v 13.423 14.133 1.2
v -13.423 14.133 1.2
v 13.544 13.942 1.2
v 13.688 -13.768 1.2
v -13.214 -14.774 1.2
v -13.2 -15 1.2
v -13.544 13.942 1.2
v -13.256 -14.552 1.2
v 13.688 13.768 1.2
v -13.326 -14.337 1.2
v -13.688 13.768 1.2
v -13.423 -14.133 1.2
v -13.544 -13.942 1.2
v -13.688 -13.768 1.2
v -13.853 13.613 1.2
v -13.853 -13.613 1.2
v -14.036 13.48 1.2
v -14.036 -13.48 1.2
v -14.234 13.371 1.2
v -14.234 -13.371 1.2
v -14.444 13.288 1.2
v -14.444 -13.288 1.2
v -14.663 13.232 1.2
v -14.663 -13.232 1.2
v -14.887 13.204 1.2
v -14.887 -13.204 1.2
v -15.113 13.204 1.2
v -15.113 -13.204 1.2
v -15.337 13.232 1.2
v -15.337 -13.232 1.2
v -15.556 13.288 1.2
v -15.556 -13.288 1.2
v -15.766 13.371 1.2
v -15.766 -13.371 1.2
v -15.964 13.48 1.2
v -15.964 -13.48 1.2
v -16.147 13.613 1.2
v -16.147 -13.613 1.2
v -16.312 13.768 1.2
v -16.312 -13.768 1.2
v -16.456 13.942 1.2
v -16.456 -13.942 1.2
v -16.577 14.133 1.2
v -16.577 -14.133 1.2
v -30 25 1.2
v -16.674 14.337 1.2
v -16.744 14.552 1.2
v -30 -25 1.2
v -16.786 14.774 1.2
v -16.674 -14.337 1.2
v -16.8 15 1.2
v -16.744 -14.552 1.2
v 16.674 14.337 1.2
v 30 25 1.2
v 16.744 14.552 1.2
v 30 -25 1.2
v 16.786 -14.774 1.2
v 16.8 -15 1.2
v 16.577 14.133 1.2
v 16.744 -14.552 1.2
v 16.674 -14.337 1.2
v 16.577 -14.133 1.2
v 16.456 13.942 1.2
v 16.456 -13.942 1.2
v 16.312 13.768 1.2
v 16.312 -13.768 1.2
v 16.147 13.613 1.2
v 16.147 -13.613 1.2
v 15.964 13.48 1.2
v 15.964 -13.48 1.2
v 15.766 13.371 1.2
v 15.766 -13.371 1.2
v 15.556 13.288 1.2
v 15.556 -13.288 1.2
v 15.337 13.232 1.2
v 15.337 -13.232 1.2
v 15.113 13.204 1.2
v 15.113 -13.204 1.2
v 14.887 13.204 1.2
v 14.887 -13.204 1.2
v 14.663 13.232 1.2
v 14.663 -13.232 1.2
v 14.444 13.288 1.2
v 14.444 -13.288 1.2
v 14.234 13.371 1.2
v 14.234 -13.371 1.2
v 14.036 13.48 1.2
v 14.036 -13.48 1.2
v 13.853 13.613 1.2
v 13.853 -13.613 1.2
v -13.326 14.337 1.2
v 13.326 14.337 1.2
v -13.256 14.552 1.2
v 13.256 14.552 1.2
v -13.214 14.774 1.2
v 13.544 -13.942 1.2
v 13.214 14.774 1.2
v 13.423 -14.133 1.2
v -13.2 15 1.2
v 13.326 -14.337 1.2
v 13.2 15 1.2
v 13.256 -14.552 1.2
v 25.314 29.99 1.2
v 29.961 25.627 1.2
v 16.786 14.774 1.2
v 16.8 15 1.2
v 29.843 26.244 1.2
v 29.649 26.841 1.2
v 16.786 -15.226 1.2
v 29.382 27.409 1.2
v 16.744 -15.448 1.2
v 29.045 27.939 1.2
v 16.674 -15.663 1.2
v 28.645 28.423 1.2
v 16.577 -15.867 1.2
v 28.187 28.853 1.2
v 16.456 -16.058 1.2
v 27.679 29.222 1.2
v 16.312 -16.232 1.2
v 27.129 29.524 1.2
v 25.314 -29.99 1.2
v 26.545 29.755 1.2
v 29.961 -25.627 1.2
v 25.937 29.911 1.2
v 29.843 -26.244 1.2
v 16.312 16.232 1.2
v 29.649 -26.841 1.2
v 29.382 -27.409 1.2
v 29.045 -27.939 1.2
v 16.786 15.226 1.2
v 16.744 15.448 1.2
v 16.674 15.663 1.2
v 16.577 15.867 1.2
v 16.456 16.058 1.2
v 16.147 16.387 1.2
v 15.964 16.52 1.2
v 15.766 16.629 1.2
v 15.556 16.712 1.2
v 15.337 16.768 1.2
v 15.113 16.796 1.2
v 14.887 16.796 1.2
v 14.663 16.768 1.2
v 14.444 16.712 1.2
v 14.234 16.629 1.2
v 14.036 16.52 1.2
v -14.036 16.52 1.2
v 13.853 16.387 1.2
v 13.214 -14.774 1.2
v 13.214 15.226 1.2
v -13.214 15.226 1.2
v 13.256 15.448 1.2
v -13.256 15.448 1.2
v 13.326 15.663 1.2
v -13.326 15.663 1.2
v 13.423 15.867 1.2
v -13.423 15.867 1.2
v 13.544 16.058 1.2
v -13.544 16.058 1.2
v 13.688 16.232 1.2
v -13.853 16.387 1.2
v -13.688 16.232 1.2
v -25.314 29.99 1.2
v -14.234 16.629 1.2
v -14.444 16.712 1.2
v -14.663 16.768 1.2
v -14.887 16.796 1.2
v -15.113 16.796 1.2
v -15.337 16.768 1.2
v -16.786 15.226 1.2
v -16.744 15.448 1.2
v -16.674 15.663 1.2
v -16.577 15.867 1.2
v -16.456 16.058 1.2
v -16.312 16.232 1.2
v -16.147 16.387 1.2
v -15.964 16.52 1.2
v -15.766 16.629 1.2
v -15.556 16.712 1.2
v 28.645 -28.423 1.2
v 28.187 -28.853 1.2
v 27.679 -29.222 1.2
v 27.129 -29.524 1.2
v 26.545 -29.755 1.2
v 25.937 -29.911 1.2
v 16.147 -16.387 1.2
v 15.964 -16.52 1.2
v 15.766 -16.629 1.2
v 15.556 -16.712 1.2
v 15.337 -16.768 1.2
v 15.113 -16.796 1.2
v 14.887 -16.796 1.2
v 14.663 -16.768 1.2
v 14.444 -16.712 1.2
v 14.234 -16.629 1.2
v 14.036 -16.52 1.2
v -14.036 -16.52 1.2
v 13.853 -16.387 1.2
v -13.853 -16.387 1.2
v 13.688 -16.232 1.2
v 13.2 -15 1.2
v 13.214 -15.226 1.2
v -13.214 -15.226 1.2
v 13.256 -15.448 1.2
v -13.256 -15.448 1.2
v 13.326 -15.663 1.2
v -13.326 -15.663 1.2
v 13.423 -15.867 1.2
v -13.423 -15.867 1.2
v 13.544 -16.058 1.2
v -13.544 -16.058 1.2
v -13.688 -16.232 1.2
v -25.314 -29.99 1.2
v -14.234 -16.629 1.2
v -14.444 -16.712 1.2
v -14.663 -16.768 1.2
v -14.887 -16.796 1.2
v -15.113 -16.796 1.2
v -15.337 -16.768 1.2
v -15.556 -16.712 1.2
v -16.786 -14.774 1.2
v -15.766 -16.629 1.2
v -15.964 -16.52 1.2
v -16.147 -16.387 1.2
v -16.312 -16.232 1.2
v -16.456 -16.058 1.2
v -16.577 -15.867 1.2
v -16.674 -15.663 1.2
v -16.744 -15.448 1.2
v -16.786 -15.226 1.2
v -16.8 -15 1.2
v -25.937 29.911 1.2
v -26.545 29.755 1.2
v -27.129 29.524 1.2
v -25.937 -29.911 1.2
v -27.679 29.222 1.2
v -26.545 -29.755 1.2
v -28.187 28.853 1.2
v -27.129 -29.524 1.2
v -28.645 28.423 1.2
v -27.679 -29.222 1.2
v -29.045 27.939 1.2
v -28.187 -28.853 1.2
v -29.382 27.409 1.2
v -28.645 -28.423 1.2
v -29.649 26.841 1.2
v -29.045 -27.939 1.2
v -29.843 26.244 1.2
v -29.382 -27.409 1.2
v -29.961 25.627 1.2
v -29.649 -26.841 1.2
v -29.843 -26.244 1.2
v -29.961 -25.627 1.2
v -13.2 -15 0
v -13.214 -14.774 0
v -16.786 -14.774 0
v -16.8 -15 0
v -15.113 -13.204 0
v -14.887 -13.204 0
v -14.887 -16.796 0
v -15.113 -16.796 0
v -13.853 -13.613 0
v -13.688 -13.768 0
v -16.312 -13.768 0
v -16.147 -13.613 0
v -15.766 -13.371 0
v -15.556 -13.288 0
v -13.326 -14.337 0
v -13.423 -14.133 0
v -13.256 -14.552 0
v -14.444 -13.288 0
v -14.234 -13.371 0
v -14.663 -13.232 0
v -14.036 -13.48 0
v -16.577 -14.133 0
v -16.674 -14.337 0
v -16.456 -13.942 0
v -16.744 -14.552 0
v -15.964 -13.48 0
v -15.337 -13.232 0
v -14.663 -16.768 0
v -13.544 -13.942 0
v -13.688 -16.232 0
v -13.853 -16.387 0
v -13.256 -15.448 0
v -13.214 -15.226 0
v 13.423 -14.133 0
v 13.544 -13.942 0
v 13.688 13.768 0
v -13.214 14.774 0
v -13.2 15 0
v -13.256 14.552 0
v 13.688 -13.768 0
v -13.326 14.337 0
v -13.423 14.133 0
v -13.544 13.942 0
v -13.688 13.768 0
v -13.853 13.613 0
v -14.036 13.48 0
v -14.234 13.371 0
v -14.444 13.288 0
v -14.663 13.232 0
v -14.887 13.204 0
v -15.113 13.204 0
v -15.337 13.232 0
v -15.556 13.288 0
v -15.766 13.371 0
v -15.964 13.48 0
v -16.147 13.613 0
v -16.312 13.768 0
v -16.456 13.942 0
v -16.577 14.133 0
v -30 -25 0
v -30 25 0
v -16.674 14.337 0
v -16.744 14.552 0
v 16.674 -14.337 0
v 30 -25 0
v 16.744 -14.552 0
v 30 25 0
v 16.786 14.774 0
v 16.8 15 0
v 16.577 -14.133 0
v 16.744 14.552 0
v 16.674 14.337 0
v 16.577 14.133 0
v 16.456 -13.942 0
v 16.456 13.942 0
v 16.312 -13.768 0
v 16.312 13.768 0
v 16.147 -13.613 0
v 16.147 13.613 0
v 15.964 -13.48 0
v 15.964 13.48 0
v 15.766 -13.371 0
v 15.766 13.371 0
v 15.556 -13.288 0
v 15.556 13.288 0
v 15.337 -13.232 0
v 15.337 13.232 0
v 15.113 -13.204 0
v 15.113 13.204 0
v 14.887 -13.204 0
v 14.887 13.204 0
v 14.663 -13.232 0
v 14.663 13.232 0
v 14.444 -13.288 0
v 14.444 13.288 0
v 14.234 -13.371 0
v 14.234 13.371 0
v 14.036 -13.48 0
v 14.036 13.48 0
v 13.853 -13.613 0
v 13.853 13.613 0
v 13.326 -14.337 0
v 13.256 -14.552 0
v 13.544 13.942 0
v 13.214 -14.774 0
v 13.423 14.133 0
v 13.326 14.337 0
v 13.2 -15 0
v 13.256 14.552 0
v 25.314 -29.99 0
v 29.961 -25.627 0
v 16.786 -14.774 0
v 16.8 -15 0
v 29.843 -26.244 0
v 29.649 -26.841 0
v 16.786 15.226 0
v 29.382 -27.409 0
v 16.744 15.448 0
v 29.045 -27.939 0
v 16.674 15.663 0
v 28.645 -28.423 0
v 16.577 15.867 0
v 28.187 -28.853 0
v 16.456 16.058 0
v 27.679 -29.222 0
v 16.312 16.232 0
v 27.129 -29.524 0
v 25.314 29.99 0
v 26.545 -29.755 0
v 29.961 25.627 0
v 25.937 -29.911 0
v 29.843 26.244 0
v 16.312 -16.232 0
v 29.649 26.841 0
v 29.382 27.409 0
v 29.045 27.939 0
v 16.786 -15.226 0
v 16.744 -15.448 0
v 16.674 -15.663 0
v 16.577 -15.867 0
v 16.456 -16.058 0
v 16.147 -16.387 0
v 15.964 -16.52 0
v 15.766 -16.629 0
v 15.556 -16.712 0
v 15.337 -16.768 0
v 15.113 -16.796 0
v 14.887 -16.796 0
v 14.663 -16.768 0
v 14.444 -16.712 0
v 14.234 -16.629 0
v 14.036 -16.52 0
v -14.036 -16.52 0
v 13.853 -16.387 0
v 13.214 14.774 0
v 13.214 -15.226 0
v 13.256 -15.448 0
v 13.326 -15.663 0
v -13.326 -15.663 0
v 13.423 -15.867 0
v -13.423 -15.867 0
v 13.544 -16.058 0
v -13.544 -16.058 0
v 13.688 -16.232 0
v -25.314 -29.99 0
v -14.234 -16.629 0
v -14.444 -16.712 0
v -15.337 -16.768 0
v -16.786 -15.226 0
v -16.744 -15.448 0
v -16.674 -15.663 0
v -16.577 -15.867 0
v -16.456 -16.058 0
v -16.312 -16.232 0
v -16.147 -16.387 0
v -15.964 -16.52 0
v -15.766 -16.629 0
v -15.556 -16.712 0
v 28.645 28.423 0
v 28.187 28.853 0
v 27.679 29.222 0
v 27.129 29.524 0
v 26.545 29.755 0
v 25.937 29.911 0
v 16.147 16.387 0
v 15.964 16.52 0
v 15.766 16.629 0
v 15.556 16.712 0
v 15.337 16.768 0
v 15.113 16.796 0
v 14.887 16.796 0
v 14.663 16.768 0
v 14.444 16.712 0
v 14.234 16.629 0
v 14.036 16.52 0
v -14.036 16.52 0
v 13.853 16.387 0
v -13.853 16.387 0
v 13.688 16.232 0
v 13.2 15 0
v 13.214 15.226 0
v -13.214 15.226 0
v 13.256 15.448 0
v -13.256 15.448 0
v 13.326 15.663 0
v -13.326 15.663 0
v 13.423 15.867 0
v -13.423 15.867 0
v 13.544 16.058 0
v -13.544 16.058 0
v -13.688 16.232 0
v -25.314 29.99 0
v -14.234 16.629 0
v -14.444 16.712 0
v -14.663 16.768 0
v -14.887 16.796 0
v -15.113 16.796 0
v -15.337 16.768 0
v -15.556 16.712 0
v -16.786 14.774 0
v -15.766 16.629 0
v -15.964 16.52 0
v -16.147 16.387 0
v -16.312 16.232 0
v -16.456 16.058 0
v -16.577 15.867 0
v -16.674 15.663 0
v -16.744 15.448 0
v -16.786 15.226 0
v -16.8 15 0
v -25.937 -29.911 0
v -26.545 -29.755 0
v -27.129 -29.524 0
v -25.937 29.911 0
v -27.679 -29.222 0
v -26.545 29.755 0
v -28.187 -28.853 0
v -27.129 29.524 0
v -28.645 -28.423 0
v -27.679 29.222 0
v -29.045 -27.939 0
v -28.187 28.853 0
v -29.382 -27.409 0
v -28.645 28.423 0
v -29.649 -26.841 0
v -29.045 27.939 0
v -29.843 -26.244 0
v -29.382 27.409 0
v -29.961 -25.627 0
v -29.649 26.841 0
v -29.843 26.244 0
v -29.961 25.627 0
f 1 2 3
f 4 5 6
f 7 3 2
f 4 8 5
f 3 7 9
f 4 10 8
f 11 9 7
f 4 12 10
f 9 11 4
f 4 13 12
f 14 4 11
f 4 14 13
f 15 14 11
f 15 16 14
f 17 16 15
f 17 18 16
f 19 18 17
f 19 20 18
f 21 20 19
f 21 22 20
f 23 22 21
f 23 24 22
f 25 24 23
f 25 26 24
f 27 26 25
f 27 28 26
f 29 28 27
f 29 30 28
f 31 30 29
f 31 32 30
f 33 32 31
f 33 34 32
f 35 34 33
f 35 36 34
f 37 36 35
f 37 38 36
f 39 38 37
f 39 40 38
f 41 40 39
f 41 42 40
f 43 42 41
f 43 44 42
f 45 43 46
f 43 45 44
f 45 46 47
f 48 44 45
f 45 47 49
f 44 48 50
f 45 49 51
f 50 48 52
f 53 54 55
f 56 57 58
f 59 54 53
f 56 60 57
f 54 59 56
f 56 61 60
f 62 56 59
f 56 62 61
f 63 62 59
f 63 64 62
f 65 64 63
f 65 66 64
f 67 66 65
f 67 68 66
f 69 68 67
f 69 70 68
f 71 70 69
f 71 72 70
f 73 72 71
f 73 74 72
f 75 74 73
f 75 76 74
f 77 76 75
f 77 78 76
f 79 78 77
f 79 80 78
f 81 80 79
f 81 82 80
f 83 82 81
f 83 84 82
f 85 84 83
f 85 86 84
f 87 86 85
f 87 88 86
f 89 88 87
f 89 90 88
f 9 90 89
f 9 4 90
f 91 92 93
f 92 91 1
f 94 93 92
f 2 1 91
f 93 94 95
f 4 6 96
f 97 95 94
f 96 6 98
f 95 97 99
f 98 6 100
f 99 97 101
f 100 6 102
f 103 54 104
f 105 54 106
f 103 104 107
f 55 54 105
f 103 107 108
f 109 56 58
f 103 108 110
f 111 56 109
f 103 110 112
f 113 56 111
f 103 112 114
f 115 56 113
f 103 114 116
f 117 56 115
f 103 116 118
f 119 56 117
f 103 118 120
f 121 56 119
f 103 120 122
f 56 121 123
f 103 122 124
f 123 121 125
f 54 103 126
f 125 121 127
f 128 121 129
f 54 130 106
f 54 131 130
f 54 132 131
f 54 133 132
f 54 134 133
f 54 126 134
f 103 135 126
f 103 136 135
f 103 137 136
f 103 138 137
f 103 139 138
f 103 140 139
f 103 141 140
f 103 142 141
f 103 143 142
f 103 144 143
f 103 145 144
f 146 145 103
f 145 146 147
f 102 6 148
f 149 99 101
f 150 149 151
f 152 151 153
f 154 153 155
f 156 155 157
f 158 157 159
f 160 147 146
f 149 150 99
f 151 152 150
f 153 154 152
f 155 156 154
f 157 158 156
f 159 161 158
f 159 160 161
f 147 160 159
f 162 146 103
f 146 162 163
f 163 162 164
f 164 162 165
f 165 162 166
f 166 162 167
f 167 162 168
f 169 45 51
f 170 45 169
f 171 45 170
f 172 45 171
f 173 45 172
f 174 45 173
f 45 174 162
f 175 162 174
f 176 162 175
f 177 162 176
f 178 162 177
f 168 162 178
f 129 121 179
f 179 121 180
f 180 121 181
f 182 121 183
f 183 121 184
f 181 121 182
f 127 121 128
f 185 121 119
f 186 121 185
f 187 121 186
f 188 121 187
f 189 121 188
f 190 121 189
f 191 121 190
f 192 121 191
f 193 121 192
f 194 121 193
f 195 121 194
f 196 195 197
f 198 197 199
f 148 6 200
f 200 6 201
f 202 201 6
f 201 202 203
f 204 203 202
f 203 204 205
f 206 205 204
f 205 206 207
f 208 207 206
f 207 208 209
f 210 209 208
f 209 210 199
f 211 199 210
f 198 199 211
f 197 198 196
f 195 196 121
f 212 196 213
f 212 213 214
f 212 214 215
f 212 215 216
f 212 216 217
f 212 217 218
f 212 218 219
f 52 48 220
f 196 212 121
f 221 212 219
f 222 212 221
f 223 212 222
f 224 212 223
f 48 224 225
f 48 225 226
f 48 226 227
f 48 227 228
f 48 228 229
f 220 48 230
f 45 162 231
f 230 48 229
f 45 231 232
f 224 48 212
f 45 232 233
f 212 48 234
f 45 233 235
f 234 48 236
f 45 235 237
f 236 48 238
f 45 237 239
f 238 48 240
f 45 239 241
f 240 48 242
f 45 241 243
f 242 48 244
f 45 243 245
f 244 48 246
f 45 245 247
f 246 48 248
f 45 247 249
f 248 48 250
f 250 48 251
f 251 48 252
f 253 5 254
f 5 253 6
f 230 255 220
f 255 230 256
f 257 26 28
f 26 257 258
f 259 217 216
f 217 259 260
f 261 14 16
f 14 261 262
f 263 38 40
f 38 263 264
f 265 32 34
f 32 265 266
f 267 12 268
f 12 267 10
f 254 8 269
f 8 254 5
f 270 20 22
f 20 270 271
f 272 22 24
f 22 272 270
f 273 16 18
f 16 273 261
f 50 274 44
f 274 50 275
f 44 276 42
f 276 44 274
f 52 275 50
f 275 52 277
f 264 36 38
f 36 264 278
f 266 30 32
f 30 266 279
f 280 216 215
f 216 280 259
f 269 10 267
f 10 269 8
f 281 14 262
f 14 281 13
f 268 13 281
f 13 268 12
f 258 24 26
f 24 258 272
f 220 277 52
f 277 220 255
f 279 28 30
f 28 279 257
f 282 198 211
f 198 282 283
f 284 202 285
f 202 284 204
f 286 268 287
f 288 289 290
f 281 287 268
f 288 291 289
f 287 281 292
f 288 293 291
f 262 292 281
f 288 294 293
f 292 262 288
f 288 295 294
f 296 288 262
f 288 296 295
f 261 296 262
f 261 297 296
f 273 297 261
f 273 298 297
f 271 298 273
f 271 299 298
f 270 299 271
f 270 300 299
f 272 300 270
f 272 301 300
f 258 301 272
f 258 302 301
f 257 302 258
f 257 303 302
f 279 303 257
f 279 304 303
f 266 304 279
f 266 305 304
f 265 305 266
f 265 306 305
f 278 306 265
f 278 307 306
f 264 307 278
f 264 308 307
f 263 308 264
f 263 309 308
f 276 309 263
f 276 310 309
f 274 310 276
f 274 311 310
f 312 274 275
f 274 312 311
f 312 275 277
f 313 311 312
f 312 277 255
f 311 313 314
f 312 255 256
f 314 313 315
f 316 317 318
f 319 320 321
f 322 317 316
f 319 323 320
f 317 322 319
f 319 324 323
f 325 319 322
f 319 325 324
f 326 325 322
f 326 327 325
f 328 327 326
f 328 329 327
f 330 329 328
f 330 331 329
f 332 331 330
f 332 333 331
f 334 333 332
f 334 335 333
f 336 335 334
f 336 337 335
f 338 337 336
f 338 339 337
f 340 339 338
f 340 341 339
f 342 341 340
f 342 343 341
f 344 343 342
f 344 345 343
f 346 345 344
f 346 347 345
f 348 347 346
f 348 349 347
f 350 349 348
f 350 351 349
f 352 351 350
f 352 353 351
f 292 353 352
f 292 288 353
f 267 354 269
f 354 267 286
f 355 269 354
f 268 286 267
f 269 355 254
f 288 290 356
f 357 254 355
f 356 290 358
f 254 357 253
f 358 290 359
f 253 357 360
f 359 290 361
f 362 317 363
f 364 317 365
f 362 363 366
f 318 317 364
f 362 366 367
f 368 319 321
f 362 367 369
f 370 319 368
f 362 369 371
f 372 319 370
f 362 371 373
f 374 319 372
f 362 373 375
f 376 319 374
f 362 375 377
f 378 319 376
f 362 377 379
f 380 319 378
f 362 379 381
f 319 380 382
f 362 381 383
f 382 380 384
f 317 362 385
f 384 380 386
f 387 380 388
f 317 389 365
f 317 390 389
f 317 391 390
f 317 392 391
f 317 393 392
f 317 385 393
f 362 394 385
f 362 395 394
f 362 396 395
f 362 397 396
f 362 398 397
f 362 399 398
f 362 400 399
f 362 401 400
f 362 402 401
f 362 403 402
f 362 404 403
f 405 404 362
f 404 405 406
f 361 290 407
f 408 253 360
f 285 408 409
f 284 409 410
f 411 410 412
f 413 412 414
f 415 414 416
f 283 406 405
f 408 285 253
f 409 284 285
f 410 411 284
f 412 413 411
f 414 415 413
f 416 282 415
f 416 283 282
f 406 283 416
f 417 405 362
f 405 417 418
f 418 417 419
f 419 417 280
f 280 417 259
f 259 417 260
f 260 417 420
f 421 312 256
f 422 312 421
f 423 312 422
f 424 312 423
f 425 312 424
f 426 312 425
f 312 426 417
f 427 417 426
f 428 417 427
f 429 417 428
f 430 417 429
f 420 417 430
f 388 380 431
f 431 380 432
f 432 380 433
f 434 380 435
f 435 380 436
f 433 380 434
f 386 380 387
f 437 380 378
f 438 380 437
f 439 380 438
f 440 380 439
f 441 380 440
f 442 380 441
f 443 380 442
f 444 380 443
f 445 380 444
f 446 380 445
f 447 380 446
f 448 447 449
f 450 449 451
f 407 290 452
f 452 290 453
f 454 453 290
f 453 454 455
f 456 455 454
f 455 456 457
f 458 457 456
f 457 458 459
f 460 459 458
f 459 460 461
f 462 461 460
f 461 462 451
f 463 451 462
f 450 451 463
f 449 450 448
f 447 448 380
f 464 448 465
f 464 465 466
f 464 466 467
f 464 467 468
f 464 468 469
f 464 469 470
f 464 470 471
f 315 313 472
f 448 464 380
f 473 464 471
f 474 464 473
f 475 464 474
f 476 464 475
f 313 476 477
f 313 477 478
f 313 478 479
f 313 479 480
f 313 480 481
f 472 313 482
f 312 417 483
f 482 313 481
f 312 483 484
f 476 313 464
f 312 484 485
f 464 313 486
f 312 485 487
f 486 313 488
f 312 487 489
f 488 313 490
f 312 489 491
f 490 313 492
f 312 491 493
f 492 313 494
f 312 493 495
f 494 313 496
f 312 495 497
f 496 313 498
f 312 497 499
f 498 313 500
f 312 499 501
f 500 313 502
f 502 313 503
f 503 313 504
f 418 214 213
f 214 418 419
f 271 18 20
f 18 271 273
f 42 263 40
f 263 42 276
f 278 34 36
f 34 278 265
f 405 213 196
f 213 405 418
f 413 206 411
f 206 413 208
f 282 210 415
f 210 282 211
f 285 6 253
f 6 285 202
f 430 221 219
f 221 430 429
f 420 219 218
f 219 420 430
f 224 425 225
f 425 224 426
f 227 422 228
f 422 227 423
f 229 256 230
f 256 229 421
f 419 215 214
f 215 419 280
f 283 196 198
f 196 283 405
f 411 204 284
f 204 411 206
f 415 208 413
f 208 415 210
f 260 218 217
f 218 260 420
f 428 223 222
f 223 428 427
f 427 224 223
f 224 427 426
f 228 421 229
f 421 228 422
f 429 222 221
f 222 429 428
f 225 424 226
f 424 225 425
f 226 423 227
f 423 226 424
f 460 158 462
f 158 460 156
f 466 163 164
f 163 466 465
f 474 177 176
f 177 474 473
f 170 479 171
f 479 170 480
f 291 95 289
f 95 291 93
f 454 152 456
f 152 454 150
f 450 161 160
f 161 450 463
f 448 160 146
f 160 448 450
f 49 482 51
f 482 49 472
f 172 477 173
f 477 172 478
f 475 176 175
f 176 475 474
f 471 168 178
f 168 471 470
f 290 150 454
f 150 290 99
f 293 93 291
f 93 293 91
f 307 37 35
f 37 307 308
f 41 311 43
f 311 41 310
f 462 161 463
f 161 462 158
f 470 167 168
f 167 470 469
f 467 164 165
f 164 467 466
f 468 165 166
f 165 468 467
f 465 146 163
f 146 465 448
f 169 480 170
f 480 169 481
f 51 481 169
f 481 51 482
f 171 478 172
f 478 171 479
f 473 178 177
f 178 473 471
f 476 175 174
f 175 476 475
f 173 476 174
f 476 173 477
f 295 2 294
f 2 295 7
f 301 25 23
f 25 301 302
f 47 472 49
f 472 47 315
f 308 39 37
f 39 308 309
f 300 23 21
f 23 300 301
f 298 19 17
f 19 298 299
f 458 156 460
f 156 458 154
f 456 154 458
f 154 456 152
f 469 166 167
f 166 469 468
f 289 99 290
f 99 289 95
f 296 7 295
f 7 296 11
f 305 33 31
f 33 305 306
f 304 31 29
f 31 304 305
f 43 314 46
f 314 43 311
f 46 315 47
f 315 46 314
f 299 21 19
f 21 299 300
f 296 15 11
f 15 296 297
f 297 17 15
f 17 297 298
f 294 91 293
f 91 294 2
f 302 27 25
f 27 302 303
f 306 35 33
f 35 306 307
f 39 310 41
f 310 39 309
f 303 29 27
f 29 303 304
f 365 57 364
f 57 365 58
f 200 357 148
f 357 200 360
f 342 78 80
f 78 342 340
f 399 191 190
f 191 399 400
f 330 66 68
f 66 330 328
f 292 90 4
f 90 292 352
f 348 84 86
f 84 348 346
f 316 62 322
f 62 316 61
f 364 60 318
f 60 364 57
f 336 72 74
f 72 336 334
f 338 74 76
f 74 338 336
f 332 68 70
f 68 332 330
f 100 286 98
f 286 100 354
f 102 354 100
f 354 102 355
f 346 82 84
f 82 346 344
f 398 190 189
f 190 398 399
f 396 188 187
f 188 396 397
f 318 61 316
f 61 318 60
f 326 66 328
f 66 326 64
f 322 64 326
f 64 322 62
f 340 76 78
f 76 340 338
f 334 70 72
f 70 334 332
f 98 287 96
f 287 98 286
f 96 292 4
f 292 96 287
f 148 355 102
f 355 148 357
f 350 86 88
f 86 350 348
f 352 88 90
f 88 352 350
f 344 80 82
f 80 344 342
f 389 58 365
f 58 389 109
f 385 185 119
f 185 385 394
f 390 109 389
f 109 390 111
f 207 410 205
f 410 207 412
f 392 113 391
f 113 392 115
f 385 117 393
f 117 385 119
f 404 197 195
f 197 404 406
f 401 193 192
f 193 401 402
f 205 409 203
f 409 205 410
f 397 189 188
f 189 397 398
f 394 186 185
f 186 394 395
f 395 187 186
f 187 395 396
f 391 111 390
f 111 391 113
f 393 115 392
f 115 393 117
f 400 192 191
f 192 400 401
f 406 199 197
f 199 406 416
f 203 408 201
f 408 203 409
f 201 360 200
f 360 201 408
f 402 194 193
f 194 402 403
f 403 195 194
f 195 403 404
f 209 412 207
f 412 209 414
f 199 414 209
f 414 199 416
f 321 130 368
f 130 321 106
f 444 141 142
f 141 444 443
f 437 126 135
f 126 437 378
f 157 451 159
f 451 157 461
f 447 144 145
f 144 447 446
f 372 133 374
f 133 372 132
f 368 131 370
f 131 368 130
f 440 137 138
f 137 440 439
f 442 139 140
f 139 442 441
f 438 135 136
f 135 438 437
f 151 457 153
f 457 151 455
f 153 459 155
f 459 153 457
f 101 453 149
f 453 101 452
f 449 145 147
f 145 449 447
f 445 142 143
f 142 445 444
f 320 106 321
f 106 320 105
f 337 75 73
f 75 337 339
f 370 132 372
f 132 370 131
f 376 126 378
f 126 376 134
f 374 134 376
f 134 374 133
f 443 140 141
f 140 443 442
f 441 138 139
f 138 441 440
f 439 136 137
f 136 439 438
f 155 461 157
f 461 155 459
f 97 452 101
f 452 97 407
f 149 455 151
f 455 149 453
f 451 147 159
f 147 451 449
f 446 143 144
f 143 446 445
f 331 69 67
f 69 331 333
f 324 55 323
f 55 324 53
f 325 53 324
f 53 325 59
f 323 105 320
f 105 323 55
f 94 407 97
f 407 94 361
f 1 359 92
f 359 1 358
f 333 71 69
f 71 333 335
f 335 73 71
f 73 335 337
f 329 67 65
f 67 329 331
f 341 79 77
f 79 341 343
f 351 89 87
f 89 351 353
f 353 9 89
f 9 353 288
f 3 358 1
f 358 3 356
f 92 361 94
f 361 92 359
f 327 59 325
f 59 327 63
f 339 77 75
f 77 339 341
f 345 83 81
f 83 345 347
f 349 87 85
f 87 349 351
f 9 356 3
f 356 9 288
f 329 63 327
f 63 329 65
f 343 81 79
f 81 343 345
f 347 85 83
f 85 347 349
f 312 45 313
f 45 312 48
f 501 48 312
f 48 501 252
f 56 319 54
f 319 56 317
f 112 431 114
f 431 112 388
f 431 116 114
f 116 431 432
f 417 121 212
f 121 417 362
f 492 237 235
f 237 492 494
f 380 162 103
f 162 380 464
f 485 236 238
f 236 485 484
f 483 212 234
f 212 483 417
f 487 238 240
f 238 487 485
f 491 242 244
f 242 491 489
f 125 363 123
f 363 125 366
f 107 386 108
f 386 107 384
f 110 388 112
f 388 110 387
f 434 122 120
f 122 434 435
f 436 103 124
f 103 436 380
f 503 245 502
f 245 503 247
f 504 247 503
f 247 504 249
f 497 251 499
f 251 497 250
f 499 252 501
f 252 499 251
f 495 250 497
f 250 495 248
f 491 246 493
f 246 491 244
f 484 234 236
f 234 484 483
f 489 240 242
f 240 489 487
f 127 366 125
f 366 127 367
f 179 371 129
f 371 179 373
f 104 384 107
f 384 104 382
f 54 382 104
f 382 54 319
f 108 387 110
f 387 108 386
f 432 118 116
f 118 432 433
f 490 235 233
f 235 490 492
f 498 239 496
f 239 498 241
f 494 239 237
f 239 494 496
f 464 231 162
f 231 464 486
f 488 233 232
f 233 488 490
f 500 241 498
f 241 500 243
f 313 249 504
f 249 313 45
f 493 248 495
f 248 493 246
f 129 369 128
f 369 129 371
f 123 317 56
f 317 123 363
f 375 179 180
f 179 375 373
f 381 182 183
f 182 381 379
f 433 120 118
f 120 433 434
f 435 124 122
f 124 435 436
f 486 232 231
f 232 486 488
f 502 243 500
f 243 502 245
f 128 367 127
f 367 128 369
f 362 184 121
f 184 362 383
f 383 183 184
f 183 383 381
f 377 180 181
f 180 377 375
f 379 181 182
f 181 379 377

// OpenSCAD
$fn = 50;


difference() {
	union() {
		hull() {
			translate(v = [-25.0000000000, 25.0000000000, 0]) {
				cylinder(h = 30, r = 5);
			}
			translate(v = [25.0000000000, 25.0000000000, 0]) {
				cylinder(h = 30, r = 5);
			}
			translate(v = [-25.0000000000, -25.0000000000, 0]) {
				cylinder(h = 30, r = 5);
			}
			translate(v = [25.0000000000, -25.0000000000, 0]) {
				cylinder(h = 30, r = 5);
			}
		}
	}
	union() {
		translate(v = [0, 0, 1.2000000000]) {
			hull() {
				translate(v = [-25.0000000000, 25.0000000000, 0]) {
					cylinder(h = 28.8000000000, r = 3.8000000000);
				}
				translate(v = [25.0000000000, 25.0000000000, 0]) {
					cylinder(h = 28.8000000000, r = 3.8000000000);
				}
				translate(v = [-25.0000000000, -25.0000000000, 0]) {
					cylinder(h = 28.8000000000, r = 3.8000000000);
				}
				translate(v = [25.0000000000, -25.0000000000, 0]) {
					cylinder(h = 28.8000000000, r = 3.8000000000);
				}
			}
		}
		#translate(v = [-15.0000000000, -15.0000000000, 0]) {
			cylinder(h = 1.2000000000, r = 1.8000000000);
		}
		#translate(v = [-15.0000000000, 15.0000000000, 0]) {
			cylinder(h = 1.2000000000, r = 1.8000000000);
		}
		#translate(v = [15.0000000000, -15.0000000000, 0]) {
			cylinder(h = 1.2000000000, r = 1.8000000000);
		}
		#translate(v = [15.0000000000, 15.0000000000, 0]) {
			cylinder(h = 1.2000000000, r = 1.8000000000);
		}
		translate(v = [-250.0000000000, -250.0000000000, 1.2000000000]) {
			cube(size = [500, 500, 500]);
		}
		translate(v = [-250.0000000000, -250.0000000000, 1.2000000000]) {
			cube(size = [500, 500, 500]);
		}
		translate(v = [-250.0000000000, -250.0000000000, 1.2000000000]) {
			cube(size = [500, 500, 500]);
		}
	}
}
